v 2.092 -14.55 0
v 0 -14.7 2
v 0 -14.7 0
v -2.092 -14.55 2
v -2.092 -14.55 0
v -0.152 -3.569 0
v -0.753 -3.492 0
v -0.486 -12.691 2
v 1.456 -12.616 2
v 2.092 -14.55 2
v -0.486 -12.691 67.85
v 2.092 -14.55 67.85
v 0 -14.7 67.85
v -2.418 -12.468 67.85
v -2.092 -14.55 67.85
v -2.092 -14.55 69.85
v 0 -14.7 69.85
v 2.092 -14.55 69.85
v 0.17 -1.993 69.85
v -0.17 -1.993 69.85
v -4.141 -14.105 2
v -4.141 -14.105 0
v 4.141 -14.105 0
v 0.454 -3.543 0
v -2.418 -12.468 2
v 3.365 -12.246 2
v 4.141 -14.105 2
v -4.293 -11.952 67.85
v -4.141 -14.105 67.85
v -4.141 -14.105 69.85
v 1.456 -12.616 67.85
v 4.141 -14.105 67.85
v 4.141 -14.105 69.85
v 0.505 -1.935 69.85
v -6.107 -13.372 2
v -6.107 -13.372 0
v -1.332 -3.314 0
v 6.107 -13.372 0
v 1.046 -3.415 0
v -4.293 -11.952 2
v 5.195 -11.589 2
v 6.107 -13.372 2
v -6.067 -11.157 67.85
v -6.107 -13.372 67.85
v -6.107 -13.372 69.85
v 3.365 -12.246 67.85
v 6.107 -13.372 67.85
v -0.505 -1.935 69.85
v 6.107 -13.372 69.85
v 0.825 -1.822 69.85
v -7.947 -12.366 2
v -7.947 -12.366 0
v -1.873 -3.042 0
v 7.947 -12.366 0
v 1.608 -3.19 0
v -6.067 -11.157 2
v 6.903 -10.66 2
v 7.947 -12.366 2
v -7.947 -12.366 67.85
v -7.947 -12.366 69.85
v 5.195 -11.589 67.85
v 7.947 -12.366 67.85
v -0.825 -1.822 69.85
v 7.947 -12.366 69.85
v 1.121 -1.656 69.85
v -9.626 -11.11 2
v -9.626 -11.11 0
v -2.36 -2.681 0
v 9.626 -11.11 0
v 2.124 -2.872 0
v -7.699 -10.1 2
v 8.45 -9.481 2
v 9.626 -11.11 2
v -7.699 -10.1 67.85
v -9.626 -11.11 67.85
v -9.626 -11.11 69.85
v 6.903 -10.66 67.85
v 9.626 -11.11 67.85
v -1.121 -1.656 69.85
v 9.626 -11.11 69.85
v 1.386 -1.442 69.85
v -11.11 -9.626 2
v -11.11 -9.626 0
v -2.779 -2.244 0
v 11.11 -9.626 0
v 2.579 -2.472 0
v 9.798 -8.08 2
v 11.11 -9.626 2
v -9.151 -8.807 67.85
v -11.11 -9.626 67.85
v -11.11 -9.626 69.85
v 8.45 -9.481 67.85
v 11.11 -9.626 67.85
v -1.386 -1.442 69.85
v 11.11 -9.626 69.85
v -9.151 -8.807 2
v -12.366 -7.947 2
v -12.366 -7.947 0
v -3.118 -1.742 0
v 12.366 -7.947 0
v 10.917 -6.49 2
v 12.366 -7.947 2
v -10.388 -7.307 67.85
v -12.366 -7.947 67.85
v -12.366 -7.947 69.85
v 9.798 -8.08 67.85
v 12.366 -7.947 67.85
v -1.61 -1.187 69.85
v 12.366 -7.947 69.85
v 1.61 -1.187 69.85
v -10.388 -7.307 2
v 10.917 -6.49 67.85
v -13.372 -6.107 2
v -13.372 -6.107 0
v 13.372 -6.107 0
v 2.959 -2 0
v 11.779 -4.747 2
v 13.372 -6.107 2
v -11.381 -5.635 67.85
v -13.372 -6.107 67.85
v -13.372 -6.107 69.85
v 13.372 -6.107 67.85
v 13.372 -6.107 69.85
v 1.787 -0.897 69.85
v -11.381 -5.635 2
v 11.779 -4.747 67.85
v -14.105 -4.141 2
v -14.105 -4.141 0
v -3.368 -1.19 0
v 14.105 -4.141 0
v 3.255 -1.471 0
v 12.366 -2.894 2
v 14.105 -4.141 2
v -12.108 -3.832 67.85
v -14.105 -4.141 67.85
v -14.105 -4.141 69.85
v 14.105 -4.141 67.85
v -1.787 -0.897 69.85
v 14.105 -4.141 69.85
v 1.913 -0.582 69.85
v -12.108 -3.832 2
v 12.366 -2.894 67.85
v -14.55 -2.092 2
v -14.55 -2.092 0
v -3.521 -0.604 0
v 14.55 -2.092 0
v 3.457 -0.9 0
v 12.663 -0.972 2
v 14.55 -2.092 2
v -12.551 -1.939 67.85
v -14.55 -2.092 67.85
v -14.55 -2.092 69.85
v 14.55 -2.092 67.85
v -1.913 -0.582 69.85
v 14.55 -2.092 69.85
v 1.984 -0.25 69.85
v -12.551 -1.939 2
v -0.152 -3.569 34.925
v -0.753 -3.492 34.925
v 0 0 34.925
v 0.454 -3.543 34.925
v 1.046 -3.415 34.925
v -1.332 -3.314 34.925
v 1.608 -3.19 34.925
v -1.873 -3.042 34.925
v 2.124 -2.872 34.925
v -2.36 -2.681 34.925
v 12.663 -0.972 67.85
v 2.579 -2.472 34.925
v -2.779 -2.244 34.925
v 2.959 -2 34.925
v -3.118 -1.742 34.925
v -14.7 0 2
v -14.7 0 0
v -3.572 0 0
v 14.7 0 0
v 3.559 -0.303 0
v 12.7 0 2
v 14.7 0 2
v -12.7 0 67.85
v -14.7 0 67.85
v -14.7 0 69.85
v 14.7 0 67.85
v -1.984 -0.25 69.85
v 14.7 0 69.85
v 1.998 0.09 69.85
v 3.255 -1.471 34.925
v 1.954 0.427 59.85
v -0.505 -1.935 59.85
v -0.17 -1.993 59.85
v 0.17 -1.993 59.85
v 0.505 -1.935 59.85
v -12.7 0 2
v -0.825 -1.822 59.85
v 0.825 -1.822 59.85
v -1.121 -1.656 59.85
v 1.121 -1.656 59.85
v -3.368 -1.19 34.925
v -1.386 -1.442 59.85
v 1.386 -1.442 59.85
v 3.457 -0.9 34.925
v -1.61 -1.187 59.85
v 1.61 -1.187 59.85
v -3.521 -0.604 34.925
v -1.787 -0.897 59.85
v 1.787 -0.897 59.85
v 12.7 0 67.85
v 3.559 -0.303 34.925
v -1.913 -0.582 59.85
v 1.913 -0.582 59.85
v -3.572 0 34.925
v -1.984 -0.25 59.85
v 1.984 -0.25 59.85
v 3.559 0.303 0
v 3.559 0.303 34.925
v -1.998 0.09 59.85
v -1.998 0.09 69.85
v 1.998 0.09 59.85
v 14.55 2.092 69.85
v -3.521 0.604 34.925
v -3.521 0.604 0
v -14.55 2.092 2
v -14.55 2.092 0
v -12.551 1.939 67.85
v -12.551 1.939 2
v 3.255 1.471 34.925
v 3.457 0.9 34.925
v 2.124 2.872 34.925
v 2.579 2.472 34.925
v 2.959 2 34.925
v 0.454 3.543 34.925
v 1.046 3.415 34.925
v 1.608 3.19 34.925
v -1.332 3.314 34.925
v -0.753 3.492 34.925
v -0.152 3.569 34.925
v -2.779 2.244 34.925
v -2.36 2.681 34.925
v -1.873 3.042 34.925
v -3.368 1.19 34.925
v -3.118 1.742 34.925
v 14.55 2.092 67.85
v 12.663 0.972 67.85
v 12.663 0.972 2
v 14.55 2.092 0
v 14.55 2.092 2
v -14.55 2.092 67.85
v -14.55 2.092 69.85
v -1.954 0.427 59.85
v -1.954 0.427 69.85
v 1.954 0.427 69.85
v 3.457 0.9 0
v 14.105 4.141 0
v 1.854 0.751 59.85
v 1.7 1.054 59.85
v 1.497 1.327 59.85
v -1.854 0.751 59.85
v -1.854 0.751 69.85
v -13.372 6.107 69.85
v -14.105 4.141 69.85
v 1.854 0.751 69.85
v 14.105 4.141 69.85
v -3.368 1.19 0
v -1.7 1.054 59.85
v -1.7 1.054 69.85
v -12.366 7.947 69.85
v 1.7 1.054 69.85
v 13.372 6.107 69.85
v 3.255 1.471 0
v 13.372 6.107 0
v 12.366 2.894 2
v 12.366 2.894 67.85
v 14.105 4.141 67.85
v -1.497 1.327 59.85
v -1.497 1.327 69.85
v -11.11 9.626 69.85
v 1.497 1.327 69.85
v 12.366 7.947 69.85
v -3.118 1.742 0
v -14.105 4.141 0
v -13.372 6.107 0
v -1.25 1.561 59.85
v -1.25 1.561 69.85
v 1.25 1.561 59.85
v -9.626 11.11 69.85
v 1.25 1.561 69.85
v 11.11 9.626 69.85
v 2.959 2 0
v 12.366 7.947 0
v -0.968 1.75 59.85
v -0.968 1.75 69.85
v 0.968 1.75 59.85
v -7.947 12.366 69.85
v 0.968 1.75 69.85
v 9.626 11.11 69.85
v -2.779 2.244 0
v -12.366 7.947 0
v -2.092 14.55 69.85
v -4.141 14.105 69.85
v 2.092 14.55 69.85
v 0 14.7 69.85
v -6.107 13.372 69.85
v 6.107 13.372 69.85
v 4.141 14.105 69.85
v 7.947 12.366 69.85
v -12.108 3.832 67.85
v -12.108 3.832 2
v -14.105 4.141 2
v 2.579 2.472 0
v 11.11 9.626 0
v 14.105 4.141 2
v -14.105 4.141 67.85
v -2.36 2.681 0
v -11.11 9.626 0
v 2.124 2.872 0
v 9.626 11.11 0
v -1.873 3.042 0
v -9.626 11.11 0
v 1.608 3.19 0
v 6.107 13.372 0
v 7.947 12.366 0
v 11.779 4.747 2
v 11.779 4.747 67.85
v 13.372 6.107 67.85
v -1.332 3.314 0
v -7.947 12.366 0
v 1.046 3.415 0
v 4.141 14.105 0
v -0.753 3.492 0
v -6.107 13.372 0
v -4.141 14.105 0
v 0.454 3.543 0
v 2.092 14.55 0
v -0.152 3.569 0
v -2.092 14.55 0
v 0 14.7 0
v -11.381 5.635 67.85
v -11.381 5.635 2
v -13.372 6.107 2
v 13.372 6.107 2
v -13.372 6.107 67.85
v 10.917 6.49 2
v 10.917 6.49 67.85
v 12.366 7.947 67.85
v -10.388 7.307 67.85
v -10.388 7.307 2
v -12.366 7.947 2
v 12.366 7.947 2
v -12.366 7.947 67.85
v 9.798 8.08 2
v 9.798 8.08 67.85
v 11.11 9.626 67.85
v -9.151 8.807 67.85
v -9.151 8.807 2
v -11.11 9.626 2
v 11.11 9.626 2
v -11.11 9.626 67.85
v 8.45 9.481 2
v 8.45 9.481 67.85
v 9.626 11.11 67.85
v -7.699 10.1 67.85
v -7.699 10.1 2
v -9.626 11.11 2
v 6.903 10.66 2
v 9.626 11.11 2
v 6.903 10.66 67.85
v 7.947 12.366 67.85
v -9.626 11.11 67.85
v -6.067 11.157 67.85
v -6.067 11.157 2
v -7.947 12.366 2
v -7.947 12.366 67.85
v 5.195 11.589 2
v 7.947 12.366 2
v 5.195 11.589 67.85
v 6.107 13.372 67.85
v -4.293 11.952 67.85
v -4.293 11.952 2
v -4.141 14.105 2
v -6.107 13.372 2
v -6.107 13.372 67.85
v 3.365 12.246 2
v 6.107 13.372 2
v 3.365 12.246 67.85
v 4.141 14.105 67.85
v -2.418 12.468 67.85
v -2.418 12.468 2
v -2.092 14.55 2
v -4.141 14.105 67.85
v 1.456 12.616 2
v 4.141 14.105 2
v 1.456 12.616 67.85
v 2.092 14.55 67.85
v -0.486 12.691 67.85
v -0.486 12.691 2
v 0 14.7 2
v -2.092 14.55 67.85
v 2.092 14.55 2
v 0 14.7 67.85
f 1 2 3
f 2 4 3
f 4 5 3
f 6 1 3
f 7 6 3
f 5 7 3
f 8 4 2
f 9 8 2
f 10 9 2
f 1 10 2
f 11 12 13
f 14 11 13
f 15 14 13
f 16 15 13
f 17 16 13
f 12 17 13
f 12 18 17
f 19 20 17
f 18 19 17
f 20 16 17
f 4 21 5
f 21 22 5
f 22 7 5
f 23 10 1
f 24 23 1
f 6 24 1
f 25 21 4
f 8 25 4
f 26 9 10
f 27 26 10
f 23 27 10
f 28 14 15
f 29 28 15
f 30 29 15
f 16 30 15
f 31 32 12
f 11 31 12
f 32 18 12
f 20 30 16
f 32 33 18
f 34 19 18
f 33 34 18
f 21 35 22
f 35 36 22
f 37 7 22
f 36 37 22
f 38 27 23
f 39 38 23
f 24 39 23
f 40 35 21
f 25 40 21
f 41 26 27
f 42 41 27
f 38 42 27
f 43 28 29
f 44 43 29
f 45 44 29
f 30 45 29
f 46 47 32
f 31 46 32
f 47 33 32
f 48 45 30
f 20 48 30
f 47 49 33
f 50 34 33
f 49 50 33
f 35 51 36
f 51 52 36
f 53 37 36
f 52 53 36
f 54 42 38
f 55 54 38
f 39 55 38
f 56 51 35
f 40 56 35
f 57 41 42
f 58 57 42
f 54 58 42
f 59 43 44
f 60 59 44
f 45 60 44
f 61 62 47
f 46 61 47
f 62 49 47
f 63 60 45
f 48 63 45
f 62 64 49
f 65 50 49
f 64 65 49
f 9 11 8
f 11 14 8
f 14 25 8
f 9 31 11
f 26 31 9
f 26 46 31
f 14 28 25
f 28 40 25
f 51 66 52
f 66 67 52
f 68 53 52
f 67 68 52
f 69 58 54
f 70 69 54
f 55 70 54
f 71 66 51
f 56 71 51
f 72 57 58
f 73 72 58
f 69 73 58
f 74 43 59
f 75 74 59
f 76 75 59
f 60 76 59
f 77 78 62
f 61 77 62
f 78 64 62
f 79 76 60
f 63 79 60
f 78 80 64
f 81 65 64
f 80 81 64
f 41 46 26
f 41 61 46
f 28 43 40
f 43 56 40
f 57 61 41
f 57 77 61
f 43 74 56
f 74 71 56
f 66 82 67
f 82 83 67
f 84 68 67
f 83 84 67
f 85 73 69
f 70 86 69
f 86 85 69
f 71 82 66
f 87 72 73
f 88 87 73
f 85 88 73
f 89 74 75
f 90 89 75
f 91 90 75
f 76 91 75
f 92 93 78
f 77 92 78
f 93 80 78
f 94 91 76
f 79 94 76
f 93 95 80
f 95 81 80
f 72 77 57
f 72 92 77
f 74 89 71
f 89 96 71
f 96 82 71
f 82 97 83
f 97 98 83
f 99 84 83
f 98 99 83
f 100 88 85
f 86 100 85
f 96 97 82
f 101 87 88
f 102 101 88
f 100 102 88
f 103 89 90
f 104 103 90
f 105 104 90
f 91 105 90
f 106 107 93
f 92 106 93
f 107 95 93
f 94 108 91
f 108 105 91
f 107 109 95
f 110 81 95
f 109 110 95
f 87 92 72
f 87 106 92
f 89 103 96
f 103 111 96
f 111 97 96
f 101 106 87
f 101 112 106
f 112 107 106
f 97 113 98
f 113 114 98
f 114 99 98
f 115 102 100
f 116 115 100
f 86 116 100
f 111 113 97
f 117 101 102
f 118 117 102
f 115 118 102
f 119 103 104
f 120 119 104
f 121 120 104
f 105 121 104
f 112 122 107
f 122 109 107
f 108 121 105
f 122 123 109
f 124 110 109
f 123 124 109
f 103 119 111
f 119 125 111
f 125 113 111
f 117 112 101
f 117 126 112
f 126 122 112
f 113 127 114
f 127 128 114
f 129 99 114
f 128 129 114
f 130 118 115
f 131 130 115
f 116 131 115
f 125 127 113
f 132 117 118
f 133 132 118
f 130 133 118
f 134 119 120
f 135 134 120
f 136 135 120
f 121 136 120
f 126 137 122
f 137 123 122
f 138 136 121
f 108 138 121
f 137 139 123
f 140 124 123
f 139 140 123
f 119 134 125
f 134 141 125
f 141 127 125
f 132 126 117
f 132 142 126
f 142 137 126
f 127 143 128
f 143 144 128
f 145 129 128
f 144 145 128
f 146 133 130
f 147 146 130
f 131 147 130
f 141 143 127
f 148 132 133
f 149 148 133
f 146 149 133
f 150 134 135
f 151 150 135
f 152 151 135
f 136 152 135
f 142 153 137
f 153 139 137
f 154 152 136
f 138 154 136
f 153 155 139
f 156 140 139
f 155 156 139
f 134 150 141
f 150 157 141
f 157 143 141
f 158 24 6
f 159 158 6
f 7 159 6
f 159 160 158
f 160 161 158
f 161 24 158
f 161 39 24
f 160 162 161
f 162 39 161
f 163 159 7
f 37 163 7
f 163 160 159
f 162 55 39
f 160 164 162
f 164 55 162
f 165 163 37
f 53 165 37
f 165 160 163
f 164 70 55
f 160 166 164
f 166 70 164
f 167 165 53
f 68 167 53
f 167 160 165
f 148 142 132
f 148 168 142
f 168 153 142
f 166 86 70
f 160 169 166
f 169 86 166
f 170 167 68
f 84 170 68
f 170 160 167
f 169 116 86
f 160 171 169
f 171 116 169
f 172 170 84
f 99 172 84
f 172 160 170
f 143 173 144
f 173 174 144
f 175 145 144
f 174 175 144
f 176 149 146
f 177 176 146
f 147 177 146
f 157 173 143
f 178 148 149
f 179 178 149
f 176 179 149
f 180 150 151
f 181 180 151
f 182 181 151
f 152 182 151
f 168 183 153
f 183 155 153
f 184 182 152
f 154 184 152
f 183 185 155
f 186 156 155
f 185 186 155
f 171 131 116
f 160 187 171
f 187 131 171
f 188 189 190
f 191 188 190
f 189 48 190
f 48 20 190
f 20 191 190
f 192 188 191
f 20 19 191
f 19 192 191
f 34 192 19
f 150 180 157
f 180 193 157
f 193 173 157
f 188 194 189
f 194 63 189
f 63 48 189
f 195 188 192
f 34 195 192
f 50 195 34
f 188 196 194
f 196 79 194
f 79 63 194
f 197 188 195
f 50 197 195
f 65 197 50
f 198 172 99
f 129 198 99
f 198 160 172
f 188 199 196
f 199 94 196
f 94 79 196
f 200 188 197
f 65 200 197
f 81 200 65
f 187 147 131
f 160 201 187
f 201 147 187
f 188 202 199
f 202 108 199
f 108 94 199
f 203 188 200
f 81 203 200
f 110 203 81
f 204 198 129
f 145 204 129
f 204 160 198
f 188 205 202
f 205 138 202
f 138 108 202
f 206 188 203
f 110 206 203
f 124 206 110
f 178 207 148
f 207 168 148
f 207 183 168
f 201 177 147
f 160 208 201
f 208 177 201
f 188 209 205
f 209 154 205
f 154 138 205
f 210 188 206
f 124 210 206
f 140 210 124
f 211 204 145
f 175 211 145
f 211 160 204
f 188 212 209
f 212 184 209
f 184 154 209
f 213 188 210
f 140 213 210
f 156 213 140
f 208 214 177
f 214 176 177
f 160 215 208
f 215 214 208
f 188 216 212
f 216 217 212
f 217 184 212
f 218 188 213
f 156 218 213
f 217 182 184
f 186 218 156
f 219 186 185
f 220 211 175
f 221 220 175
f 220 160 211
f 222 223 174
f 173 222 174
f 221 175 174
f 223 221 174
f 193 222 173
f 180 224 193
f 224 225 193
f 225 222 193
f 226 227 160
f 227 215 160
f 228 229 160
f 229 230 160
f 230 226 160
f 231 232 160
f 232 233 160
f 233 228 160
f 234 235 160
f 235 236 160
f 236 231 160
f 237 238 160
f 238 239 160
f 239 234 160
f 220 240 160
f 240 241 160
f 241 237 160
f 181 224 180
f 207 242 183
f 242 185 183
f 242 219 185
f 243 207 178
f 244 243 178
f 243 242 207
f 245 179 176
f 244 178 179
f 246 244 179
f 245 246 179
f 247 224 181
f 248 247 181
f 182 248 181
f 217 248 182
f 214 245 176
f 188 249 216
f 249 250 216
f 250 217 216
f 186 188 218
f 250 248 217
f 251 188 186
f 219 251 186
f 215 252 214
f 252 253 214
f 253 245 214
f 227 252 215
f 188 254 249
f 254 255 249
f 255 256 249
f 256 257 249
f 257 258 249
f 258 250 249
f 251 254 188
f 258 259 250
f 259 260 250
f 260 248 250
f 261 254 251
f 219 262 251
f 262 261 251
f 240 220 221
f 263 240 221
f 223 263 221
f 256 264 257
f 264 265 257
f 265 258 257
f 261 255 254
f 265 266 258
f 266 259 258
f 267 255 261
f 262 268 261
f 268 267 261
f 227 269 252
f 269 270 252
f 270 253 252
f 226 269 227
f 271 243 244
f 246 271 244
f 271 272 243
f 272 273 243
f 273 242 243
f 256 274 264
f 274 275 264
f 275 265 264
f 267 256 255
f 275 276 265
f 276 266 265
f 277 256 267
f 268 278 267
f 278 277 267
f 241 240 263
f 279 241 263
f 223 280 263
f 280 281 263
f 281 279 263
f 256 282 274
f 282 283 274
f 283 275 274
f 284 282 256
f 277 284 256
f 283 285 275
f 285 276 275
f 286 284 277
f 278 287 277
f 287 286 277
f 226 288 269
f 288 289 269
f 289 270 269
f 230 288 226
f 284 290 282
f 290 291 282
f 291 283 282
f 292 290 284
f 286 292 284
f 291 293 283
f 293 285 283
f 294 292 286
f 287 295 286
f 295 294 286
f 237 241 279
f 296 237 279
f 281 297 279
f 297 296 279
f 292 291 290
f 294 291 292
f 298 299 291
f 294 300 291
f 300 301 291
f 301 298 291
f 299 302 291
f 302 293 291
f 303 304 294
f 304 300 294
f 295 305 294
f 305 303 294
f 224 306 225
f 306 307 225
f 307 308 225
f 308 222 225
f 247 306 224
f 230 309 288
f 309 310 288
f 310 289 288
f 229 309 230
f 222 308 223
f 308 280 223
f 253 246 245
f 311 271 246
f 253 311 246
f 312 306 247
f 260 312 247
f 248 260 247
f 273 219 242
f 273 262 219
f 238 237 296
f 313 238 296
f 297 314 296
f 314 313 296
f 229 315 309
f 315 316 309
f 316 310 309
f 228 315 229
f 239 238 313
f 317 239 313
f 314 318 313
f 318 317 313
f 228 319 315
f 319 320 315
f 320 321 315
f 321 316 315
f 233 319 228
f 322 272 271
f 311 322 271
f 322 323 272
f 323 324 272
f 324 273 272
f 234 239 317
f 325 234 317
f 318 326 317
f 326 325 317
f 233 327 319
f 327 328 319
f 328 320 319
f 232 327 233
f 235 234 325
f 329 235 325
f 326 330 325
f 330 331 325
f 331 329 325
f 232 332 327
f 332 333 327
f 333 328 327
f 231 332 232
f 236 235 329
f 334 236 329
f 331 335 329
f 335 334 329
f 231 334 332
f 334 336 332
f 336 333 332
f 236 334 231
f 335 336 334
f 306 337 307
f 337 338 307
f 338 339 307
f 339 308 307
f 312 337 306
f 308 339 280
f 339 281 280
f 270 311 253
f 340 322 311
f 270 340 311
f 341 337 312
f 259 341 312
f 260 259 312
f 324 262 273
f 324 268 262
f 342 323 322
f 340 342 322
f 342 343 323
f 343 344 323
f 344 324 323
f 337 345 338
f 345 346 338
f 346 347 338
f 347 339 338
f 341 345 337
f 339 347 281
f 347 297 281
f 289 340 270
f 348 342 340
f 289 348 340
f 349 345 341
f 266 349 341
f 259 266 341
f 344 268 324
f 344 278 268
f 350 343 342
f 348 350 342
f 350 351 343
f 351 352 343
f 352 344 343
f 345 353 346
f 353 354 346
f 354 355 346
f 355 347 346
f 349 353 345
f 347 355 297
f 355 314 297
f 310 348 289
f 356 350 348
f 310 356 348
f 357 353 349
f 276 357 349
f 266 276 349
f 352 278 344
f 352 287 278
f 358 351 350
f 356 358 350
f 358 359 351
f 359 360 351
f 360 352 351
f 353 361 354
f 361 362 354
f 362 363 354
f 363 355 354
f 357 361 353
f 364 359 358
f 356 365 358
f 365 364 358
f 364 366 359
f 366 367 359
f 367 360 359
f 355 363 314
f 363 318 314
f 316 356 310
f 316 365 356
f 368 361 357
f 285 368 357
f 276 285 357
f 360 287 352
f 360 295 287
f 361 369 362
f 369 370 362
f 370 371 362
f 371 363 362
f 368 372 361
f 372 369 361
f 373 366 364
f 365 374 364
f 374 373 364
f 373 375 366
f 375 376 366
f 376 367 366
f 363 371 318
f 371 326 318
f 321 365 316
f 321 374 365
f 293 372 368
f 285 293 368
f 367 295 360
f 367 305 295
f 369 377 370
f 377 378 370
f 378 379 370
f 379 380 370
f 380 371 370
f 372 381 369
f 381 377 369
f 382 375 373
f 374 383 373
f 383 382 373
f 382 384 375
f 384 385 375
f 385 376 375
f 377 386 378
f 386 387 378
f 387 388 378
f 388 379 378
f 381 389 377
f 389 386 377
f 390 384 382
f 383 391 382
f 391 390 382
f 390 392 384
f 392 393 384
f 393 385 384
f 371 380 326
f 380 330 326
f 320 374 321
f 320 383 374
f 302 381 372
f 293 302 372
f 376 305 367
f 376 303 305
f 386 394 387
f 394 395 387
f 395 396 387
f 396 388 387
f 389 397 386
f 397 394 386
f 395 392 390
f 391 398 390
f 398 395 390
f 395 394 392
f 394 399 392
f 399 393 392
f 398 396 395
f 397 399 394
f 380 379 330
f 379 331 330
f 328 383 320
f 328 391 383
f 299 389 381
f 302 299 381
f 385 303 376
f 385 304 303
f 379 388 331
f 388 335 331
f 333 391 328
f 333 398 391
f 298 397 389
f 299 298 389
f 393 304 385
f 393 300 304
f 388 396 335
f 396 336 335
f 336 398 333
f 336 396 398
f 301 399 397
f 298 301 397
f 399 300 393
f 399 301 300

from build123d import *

# Parameters (mm, degrees)
SKETCH1_R           = 12.7
BOSS_EXTRUDE1_DEPTH = 69.85
CUT_EXTRUDE1_DEPTH  = 10
SKETCH3_R           = 3.571999968
CUT_EXTRUDE2_DEPTH  = 34.925
SKETCH5_R           = 14.7
SKETCH5_R_2         = 3.572
BOSS_EXTRUDE2_DEPTH = 2
BOSS_EXTRUDE5_START = 69.85
SKETCH8_R           = 14.7
BOSS_EXTRUDE5_DEPTH = 2


with BuildPart() as part:
    # Sketch1 → Boss-Extrude1 (new body)
    with BuildSketch(Plane.XY):
        Circle(SKETCH1_R)
    extrude(amount=BOSS_EXTRUDE1_DEPTH)

    # Sketch2 → Cut-Extrude1 (cut)
    with BuildSketch(Plane.XY.offset(69.85)):
        with BuildLine():
            Line((-0.968245837, 1.75), (0.968245837, 1.75))
            ThreePointArc((0.968245837, 1.75), (0, -2), (-0.968245837, 1.75))
        make_face()
    extrude(amount=-CUT_EXTRUDE1_DEPTH, mode=Mode.SUBTRACT)

    # Sketch3 → Cut-Extrude2 (cut)
    with BuildSketch(Plane(origin=(0, 0, 0), x_dir=(-1, 0, 0), z_dir=(0, 0, -1))):
        Circle(SKETCH3_R)
    extrude(amount=-CUT_EXTRUDE2_DEPTH, mode=Mode.SUBTRACT)

    # Sketch5 → Boss-Extrude2 (add)
    with BuildSketch(Plane.XY):
        Circle(SKETCH5_R)
        with Locations(Location((0, 0, 0), (0, 0, 180))):
            Circle(SKETCH5_R_2, mode=Mode.SUBTRACT)
    extrude(amount=BOSS_EXTRUDE2_DEPTH)

    # Sketch8 → Boss-Extrude5 (add)
    with BuildSketch(Plane.XY.offset(BOSS_EXTRUDE5_START)):
        Circle(SKETCH8_R)
        with BuildLine():
            Line((-0.968245837, 1.75), (0.968245837, 1.75))
            ThreePointArc((0.968245837, 1.75), (0, -2), (-0.968245837, 1.75))
        make_face(mode=Mode.SUBTRACT)
    extrude(amount=-BOSS_EXTRUDE5_DEPTH)


solid = part.part
